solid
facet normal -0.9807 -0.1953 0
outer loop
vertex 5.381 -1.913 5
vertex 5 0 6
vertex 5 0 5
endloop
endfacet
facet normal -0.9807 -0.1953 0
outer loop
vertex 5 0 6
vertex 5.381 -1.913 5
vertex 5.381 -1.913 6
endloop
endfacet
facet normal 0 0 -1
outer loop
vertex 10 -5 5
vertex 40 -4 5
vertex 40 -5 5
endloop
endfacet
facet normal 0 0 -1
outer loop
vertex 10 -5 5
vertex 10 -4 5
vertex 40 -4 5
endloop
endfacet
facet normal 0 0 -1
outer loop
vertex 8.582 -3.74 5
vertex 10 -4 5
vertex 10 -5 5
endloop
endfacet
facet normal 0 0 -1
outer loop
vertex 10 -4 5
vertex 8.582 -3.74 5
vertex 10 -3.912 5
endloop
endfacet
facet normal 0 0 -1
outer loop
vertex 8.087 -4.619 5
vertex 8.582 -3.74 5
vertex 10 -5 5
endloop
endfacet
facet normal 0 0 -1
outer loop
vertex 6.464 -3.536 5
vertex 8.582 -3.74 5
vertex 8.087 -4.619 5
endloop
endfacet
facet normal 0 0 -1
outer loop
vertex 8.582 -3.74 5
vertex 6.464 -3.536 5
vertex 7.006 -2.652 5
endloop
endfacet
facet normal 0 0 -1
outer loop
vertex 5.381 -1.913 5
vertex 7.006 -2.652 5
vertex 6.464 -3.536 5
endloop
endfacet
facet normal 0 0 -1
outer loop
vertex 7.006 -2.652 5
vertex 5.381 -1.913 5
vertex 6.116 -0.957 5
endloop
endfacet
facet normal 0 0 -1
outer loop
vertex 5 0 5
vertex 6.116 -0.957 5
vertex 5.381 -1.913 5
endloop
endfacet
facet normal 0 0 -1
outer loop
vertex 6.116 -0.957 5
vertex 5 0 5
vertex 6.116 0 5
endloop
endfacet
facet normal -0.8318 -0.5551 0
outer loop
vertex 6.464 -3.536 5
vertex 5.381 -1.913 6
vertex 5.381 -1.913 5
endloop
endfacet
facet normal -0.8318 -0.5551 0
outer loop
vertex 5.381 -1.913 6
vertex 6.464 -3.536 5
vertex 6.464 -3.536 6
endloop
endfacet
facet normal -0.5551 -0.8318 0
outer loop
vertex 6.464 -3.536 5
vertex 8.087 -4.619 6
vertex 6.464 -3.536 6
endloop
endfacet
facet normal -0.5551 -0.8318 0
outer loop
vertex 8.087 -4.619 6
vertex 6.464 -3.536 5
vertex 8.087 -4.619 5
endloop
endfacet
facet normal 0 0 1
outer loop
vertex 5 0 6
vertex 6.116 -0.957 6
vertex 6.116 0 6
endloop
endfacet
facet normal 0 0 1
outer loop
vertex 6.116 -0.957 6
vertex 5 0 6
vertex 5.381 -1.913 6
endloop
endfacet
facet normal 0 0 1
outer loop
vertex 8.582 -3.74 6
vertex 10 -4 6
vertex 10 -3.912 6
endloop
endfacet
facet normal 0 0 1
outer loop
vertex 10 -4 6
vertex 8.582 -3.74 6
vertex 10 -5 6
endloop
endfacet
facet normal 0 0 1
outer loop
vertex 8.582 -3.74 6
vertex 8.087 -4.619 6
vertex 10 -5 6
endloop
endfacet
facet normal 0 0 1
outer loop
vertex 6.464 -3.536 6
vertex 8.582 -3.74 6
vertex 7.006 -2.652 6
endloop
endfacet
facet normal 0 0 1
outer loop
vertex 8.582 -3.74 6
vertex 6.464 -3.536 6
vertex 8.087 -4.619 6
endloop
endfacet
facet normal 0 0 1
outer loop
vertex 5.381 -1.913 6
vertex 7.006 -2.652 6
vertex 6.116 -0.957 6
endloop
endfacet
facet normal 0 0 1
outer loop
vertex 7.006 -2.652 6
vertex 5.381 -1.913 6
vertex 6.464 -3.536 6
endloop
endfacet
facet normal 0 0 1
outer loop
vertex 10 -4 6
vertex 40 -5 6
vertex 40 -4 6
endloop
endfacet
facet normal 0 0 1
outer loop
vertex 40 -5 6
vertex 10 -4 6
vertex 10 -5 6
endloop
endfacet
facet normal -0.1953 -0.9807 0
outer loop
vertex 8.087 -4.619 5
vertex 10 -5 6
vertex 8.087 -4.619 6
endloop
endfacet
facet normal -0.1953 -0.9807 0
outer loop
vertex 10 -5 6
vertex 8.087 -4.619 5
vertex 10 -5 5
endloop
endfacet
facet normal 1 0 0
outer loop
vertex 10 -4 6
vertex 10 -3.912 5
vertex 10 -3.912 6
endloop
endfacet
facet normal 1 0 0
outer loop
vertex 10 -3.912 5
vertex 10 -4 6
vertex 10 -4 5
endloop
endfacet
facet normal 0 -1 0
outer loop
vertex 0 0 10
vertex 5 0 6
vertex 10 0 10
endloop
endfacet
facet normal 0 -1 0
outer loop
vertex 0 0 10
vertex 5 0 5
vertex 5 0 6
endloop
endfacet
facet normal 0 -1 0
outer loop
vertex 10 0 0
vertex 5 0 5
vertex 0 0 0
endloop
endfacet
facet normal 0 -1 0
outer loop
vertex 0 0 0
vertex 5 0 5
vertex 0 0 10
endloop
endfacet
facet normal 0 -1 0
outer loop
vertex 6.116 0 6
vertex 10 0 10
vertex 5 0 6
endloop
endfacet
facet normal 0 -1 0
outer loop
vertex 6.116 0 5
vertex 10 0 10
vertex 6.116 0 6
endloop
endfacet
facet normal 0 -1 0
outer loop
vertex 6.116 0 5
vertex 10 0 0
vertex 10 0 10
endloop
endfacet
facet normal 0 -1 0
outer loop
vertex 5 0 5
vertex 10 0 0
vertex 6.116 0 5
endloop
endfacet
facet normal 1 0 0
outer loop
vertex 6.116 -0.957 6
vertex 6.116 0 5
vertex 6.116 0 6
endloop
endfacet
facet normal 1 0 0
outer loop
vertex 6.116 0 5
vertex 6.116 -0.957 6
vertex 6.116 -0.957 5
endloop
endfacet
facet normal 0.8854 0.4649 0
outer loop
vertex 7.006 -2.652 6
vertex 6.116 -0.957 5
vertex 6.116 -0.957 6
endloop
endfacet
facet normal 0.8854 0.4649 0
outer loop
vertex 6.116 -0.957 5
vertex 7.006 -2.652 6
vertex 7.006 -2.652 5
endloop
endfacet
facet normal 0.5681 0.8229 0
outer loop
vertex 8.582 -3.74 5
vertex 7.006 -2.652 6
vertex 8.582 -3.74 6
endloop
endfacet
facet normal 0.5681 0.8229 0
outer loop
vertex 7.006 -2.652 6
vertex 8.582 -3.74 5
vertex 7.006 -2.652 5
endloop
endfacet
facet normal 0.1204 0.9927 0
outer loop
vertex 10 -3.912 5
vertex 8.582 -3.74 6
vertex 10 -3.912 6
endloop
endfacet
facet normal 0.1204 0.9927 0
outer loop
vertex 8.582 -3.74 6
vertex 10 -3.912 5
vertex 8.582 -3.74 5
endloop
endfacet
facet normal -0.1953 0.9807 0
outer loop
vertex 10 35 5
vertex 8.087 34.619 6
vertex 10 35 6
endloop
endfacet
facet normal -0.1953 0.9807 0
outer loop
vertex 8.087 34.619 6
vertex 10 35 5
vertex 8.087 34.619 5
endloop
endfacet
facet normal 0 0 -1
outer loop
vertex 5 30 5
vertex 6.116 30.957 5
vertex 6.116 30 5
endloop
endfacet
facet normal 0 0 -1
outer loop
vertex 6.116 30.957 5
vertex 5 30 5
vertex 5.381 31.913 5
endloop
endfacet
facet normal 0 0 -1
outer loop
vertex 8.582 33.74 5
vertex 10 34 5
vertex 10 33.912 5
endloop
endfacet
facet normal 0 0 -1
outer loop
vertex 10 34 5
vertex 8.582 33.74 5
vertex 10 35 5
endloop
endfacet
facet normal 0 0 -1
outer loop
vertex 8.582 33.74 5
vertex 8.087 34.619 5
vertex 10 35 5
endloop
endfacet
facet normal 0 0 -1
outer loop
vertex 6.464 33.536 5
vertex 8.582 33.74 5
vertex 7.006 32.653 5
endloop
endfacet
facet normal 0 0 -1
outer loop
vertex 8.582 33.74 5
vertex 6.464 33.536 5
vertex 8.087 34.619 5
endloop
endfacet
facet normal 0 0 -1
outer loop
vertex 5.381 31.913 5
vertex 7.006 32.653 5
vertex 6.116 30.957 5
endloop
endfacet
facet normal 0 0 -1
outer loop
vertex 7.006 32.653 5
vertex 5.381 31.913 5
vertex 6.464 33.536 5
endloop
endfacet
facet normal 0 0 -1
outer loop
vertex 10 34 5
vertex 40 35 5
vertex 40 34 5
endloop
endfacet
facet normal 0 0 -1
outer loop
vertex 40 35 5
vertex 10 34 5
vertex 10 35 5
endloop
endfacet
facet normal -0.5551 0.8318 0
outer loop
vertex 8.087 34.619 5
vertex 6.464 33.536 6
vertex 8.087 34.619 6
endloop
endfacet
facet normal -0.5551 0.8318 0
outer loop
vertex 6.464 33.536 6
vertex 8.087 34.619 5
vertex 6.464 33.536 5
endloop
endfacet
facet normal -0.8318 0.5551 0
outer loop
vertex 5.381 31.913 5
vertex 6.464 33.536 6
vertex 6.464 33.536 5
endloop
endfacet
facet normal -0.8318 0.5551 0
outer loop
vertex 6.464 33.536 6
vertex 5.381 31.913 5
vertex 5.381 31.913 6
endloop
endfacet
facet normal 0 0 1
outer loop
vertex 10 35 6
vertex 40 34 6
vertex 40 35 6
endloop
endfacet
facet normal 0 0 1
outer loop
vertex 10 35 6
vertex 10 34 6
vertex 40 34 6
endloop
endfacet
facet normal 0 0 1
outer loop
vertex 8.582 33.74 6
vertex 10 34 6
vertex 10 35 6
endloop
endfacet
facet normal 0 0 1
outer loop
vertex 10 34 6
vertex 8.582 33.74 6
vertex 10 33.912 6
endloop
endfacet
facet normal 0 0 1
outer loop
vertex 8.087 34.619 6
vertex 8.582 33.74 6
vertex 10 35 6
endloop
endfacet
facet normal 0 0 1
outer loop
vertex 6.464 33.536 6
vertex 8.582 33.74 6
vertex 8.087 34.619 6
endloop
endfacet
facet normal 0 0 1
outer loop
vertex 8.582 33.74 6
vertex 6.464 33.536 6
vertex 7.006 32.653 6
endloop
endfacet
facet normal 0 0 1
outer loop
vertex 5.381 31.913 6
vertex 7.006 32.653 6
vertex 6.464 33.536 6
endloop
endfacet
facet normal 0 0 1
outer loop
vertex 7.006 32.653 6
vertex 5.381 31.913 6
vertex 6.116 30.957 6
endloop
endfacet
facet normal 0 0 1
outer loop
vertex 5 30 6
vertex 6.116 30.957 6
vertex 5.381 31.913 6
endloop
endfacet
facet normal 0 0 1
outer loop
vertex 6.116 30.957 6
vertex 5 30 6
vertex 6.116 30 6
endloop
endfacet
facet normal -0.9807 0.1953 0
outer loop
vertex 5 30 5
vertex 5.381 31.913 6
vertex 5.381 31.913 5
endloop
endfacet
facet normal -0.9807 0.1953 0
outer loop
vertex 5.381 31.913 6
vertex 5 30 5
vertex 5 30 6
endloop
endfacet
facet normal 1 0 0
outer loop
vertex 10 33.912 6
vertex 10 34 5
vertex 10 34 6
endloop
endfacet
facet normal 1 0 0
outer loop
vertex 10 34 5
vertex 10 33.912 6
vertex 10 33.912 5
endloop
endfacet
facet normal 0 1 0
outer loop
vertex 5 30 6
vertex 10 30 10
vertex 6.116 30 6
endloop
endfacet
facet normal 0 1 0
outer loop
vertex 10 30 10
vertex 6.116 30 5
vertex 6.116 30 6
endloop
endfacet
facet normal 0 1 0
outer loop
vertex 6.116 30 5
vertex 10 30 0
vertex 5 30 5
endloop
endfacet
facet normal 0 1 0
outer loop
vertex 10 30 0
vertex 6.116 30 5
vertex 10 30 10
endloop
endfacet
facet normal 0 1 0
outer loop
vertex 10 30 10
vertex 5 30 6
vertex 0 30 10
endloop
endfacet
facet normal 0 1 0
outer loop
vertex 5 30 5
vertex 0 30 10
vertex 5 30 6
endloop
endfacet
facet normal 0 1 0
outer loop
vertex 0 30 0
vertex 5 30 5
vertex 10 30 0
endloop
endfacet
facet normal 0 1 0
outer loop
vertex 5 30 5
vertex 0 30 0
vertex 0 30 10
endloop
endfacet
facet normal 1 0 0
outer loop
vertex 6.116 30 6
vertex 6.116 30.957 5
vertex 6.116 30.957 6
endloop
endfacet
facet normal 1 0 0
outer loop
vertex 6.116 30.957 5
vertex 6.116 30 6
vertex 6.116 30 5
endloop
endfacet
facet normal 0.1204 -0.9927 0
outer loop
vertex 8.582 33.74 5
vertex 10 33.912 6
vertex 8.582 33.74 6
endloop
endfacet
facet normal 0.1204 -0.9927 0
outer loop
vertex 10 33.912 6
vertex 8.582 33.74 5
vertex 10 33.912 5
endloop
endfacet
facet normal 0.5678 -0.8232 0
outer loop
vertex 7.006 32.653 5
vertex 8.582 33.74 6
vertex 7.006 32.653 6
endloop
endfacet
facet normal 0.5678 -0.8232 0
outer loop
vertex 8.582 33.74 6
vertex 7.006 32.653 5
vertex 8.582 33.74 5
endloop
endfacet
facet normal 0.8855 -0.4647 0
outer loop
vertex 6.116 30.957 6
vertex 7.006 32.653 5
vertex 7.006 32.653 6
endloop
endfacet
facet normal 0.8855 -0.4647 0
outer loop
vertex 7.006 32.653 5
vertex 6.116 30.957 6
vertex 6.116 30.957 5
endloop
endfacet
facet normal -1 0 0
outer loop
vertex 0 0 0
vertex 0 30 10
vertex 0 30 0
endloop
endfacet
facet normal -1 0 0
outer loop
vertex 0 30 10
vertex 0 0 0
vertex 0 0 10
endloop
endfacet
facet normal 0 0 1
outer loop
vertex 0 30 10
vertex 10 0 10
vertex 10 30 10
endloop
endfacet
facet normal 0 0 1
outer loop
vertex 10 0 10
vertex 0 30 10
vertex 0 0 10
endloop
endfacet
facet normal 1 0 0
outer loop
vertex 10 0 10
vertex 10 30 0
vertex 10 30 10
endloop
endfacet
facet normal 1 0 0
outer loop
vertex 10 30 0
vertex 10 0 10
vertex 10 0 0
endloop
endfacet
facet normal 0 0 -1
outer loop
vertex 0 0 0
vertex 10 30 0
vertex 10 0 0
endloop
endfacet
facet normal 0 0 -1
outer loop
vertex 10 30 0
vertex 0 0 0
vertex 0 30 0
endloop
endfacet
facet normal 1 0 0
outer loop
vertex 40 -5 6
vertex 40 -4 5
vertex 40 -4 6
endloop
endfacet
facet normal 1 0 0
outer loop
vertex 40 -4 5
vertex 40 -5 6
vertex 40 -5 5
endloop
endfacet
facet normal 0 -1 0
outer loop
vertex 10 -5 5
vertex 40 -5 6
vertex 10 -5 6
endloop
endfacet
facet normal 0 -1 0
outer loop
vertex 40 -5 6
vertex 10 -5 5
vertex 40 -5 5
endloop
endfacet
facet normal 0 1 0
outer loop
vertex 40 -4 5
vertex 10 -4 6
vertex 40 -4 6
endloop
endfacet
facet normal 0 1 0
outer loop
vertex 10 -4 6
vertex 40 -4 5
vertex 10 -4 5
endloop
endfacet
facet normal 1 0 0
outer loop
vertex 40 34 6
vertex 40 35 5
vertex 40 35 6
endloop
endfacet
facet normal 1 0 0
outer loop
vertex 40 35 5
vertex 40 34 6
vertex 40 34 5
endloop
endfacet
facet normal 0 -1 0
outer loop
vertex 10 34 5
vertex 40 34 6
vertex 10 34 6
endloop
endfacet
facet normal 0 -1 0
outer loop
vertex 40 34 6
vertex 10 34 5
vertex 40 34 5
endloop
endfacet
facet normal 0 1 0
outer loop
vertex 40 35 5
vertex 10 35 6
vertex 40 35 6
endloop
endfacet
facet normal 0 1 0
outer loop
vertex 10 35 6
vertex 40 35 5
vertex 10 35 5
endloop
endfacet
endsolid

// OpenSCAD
intX=82.55;
cube([10,30,10]);
translate([10,-5,5])cube([30,1,1]);
translate([10,34,5])cube([30,1,1]);

difference(){
intersection(){
    translate([10,0,5])cylinder(r=5,h=1);
    translate([5,-5,1])cube([5,5,5]);
}
    translate([10,0,5])cylinder(r=4,h=1);
}

difference(){
     
intersection(){
    translate([10,30,5])cylinder(r=5,h=1);
    translate([5,30,1])cube([5,5,5]);
}
    translate([10,30,5])cylinder(r=4,h=1);
}
